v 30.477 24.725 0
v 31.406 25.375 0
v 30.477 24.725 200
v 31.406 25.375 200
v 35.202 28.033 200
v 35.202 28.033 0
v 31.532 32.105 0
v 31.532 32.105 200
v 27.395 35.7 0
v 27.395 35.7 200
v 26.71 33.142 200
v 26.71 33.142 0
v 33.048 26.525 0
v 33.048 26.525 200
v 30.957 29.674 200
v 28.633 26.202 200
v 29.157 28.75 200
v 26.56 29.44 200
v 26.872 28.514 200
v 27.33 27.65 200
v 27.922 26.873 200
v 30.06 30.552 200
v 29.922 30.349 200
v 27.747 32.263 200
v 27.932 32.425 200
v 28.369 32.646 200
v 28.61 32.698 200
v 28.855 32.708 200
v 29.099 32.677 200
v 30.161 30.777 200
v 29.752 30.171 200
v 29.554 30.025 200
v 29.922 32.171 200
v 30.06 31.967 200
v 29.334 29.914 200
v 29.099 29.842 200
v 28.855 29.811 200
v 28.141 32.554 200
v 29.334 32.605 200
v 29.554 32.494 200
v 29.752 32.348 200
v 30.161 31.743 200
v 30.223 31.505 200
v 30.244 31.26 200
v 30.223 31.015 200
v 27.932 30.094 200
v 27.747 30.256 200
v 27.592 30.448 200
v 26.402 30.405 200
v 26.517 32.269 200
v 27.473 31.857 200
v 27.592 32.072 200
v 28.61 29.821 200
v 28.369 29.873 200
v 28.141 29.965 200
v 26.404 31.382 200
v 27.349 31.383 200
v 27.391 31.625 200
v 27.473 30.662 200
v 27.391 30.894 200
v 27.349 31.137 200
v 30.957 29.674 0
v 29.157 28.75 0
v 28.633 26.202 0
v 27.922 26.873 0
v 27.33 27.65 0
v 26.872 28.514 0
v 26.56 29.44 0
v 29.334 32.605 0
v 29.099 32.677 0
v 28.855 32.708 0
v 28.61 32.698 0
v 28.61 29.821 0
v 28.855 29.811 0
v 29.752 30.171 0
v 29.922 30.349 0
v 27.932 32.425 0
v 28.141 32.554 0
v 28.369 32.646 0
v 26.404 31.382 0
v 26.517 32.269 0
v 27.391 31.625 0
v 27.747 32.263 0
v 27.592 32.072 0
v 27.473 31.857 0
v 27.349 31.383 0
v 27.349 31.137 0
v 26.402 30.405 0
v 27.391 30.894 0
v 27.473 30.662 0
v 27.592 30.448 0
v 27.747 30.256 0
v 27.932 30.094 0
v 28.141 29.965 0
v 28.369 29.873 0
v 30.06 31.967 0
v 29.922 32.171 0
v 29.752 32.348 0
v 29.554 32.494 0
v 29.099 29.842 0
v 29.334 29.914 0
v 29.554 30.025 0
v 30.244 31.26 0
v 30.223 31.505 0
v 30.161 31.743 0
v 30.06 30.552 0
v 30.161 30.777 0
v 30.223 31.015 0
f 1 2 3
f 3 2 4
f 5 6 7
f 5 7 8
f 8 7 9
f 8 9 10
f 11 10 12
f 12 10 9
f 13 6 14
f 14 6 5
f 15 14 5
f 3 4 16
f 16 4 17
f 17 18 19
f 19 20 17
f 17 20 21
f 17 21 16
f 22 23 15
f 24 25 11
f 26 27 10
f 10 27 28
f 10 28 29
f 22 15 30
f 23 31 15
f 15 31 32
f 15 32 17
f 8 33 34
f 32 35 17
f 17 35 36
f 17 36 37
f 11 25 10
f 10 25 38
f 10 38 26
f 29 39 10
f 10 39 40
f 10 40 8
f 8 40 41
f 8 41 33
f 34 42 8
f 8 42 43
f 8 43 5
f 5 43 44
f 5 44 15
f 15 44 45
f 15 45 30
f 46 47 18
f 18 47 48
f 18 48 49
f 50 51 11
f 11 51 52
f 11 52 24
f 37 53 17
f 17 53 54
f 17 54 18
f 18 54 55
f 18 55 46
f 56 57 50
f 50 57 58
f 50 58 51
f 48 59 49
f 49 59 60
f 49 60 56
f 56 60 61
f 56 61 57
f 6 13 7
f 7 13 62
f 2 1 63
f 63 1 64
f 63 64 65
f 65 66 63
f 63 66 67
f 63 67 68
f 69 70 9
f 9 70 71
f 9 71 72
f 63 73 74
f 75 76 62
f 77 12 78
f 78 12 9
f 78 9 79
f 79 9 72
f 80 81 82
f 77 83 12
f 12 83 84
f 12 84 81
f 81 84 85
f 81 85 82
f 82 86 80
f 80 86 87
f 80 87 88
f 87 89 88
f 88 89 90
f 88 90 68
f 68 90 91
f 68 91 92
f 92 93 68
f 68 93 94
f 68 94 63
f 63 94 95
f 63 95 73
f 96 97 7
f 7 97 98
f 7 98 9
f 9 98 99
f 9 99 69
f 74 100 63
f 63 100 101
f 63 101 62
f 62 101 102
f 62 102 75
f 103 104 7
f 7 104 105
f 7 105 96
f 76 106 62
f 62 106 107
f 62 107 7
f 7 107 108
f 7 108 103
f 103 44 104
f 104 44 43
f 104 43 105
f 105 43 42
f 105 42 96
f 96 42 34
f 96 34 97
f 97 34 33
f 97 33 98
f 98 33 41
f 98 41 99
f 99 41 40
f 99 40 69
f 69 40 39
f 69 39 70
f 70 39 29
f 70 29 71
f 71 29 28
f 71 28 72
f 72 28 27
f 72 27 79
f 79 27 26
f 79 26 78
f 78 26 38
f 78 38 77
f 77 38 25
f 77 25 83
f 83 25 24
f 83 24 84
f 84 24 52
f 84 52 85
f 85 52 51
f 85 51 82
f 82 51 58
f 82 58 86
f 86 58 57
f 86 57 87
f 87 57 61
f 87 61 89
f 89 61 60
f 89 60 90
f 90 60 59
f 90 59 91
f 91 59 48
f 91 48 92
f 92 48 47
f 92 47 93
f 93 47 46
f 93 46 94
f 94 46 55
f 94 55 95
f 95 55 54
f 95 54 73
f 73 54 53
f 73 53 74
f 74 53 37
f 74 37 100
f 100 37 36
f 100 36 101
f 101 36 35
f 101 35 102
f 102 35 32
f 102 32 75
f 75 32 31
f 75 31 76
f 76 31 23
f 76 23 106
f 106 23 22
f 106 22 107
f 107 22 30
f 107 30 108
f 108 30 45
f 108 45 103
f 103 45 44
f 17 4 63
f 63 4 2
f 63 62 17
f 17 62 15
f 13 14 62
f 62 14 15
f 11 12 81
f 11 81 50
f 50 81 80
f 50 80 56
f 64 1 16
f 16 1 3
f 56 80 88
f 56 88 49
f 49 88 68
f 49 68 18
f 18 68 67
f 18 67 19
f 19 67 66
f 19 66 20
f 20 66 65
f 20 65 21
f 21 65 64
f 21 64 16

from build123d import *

# Parameters (mm, degrees)
EXTRUDE_1_DEPTH     = 200
SKETCH_2_R          = 1.45
CUT_EXTRUDE_1_DEPTH = 207.188353614
CUT_EXTRUDE_2_DEPTH = 207.188353614
FILLET_1_R          = 10
CHAMFER_START       = 36
CHAMFER_1_OUTLINE_W = 8
CHAMFER_1_OUTLINE_H = 200
CHAMFER_1_DEPTH     = 2.349513284
FILLET_2_R          = 6


with BuildPart() as part:
    # Эскиз1 → Бобышка-Вытянуть1 (new body)
    with BuildSketch(Plane.XY):
        with BuildLine():
            Line((25.256912811, 27.718916921), (27.395437576, 35.7))
            ThreePointArc((27.395437576, 35.7), (31.532369241, 32.10466773), (35.201522214, 28.033066792))
            Line((35.201522214, 28.033066792), (29.04384005, 23.721411323))
            ThreePointArc((29.04384005, 23.721411323), (27.223848976, 25.789766322), (25.256912811, 27.718916921))
        make_face()
    extrude(amount=EXTRUDE_1_DEPTH)

    # Эскиз2 → Вырез-Вытянуть1 (cut, through all)
    with BuildSketch(Plane.XY.offset(200)):
        with Locations((28.793836633, 31.259638065)):
            Circle(SKETCH_2_R)
    extrude(amount=-CUT_EXTRUDE_1_DEPTH, mode=Mode.SUBTRACT)

    # Эскиз4 → Вырез-Вытянуть2 (cut, through all)
    with BuildSketch(Plane.XY.offset(200)):
        with BuildLine():
            Line((29.156742817, 28.750319078), (30.957117515, 29.673853967))
            ThreePointArc((30.957117515, 29.673853967), (32.031639738, 28.118803021), (33.047614071, 26.524884074))
            Line((33.047614071, 26.524884074), (31.406028194, 25.375433268))
            ThreePointArc((31.406028194, 25.375433268), (30.316432625, 27.086234289), (29.156742817, 28.750319078))
        make_face()
    extrude(amount=-CUT_EXTRUDE_2_DEPTH, mode=Mode.SUBTRACT)

    # Скругление1
    fillet_1_edges = [part.edges().sort_by_distance(p)[0] for p in [
        (25.256912811, 27.718916921, 100),
    ]]
    fillet(fillet_1_edges, radius=FILLET_1_R)

    # Фаска1: read off the stored shape, not the designer's step
    # Фаска1 outline → Фаска1 (cut)
    with BuildSketch(Plane(origin=(0, 0, 0), x_dir=(0.7805652874719331, -0.6250742611833081, 0), z_dir=(0.6250742611833081, 0.7805652874719331, 0)).offset(CHAMFER_START)):
        with Locations((6, -100)):
            Rectangle(CHAMFER_1_OUTLINE_W, CHAMFER_1_OUTLINE_H)
    extrude(amount=CHAMFER_1_DEPTH, mode=Mode.SUBTRACT)

    # Скругление2
    fillet_2_edges = [part.edges().sort_by_distance(p)[0] for p in [
        (26.792531546, 27.67506033, 100),
    ]]
    fillet(fillet_2_edges, radius=FILLET_2_R)


solid = part.part
